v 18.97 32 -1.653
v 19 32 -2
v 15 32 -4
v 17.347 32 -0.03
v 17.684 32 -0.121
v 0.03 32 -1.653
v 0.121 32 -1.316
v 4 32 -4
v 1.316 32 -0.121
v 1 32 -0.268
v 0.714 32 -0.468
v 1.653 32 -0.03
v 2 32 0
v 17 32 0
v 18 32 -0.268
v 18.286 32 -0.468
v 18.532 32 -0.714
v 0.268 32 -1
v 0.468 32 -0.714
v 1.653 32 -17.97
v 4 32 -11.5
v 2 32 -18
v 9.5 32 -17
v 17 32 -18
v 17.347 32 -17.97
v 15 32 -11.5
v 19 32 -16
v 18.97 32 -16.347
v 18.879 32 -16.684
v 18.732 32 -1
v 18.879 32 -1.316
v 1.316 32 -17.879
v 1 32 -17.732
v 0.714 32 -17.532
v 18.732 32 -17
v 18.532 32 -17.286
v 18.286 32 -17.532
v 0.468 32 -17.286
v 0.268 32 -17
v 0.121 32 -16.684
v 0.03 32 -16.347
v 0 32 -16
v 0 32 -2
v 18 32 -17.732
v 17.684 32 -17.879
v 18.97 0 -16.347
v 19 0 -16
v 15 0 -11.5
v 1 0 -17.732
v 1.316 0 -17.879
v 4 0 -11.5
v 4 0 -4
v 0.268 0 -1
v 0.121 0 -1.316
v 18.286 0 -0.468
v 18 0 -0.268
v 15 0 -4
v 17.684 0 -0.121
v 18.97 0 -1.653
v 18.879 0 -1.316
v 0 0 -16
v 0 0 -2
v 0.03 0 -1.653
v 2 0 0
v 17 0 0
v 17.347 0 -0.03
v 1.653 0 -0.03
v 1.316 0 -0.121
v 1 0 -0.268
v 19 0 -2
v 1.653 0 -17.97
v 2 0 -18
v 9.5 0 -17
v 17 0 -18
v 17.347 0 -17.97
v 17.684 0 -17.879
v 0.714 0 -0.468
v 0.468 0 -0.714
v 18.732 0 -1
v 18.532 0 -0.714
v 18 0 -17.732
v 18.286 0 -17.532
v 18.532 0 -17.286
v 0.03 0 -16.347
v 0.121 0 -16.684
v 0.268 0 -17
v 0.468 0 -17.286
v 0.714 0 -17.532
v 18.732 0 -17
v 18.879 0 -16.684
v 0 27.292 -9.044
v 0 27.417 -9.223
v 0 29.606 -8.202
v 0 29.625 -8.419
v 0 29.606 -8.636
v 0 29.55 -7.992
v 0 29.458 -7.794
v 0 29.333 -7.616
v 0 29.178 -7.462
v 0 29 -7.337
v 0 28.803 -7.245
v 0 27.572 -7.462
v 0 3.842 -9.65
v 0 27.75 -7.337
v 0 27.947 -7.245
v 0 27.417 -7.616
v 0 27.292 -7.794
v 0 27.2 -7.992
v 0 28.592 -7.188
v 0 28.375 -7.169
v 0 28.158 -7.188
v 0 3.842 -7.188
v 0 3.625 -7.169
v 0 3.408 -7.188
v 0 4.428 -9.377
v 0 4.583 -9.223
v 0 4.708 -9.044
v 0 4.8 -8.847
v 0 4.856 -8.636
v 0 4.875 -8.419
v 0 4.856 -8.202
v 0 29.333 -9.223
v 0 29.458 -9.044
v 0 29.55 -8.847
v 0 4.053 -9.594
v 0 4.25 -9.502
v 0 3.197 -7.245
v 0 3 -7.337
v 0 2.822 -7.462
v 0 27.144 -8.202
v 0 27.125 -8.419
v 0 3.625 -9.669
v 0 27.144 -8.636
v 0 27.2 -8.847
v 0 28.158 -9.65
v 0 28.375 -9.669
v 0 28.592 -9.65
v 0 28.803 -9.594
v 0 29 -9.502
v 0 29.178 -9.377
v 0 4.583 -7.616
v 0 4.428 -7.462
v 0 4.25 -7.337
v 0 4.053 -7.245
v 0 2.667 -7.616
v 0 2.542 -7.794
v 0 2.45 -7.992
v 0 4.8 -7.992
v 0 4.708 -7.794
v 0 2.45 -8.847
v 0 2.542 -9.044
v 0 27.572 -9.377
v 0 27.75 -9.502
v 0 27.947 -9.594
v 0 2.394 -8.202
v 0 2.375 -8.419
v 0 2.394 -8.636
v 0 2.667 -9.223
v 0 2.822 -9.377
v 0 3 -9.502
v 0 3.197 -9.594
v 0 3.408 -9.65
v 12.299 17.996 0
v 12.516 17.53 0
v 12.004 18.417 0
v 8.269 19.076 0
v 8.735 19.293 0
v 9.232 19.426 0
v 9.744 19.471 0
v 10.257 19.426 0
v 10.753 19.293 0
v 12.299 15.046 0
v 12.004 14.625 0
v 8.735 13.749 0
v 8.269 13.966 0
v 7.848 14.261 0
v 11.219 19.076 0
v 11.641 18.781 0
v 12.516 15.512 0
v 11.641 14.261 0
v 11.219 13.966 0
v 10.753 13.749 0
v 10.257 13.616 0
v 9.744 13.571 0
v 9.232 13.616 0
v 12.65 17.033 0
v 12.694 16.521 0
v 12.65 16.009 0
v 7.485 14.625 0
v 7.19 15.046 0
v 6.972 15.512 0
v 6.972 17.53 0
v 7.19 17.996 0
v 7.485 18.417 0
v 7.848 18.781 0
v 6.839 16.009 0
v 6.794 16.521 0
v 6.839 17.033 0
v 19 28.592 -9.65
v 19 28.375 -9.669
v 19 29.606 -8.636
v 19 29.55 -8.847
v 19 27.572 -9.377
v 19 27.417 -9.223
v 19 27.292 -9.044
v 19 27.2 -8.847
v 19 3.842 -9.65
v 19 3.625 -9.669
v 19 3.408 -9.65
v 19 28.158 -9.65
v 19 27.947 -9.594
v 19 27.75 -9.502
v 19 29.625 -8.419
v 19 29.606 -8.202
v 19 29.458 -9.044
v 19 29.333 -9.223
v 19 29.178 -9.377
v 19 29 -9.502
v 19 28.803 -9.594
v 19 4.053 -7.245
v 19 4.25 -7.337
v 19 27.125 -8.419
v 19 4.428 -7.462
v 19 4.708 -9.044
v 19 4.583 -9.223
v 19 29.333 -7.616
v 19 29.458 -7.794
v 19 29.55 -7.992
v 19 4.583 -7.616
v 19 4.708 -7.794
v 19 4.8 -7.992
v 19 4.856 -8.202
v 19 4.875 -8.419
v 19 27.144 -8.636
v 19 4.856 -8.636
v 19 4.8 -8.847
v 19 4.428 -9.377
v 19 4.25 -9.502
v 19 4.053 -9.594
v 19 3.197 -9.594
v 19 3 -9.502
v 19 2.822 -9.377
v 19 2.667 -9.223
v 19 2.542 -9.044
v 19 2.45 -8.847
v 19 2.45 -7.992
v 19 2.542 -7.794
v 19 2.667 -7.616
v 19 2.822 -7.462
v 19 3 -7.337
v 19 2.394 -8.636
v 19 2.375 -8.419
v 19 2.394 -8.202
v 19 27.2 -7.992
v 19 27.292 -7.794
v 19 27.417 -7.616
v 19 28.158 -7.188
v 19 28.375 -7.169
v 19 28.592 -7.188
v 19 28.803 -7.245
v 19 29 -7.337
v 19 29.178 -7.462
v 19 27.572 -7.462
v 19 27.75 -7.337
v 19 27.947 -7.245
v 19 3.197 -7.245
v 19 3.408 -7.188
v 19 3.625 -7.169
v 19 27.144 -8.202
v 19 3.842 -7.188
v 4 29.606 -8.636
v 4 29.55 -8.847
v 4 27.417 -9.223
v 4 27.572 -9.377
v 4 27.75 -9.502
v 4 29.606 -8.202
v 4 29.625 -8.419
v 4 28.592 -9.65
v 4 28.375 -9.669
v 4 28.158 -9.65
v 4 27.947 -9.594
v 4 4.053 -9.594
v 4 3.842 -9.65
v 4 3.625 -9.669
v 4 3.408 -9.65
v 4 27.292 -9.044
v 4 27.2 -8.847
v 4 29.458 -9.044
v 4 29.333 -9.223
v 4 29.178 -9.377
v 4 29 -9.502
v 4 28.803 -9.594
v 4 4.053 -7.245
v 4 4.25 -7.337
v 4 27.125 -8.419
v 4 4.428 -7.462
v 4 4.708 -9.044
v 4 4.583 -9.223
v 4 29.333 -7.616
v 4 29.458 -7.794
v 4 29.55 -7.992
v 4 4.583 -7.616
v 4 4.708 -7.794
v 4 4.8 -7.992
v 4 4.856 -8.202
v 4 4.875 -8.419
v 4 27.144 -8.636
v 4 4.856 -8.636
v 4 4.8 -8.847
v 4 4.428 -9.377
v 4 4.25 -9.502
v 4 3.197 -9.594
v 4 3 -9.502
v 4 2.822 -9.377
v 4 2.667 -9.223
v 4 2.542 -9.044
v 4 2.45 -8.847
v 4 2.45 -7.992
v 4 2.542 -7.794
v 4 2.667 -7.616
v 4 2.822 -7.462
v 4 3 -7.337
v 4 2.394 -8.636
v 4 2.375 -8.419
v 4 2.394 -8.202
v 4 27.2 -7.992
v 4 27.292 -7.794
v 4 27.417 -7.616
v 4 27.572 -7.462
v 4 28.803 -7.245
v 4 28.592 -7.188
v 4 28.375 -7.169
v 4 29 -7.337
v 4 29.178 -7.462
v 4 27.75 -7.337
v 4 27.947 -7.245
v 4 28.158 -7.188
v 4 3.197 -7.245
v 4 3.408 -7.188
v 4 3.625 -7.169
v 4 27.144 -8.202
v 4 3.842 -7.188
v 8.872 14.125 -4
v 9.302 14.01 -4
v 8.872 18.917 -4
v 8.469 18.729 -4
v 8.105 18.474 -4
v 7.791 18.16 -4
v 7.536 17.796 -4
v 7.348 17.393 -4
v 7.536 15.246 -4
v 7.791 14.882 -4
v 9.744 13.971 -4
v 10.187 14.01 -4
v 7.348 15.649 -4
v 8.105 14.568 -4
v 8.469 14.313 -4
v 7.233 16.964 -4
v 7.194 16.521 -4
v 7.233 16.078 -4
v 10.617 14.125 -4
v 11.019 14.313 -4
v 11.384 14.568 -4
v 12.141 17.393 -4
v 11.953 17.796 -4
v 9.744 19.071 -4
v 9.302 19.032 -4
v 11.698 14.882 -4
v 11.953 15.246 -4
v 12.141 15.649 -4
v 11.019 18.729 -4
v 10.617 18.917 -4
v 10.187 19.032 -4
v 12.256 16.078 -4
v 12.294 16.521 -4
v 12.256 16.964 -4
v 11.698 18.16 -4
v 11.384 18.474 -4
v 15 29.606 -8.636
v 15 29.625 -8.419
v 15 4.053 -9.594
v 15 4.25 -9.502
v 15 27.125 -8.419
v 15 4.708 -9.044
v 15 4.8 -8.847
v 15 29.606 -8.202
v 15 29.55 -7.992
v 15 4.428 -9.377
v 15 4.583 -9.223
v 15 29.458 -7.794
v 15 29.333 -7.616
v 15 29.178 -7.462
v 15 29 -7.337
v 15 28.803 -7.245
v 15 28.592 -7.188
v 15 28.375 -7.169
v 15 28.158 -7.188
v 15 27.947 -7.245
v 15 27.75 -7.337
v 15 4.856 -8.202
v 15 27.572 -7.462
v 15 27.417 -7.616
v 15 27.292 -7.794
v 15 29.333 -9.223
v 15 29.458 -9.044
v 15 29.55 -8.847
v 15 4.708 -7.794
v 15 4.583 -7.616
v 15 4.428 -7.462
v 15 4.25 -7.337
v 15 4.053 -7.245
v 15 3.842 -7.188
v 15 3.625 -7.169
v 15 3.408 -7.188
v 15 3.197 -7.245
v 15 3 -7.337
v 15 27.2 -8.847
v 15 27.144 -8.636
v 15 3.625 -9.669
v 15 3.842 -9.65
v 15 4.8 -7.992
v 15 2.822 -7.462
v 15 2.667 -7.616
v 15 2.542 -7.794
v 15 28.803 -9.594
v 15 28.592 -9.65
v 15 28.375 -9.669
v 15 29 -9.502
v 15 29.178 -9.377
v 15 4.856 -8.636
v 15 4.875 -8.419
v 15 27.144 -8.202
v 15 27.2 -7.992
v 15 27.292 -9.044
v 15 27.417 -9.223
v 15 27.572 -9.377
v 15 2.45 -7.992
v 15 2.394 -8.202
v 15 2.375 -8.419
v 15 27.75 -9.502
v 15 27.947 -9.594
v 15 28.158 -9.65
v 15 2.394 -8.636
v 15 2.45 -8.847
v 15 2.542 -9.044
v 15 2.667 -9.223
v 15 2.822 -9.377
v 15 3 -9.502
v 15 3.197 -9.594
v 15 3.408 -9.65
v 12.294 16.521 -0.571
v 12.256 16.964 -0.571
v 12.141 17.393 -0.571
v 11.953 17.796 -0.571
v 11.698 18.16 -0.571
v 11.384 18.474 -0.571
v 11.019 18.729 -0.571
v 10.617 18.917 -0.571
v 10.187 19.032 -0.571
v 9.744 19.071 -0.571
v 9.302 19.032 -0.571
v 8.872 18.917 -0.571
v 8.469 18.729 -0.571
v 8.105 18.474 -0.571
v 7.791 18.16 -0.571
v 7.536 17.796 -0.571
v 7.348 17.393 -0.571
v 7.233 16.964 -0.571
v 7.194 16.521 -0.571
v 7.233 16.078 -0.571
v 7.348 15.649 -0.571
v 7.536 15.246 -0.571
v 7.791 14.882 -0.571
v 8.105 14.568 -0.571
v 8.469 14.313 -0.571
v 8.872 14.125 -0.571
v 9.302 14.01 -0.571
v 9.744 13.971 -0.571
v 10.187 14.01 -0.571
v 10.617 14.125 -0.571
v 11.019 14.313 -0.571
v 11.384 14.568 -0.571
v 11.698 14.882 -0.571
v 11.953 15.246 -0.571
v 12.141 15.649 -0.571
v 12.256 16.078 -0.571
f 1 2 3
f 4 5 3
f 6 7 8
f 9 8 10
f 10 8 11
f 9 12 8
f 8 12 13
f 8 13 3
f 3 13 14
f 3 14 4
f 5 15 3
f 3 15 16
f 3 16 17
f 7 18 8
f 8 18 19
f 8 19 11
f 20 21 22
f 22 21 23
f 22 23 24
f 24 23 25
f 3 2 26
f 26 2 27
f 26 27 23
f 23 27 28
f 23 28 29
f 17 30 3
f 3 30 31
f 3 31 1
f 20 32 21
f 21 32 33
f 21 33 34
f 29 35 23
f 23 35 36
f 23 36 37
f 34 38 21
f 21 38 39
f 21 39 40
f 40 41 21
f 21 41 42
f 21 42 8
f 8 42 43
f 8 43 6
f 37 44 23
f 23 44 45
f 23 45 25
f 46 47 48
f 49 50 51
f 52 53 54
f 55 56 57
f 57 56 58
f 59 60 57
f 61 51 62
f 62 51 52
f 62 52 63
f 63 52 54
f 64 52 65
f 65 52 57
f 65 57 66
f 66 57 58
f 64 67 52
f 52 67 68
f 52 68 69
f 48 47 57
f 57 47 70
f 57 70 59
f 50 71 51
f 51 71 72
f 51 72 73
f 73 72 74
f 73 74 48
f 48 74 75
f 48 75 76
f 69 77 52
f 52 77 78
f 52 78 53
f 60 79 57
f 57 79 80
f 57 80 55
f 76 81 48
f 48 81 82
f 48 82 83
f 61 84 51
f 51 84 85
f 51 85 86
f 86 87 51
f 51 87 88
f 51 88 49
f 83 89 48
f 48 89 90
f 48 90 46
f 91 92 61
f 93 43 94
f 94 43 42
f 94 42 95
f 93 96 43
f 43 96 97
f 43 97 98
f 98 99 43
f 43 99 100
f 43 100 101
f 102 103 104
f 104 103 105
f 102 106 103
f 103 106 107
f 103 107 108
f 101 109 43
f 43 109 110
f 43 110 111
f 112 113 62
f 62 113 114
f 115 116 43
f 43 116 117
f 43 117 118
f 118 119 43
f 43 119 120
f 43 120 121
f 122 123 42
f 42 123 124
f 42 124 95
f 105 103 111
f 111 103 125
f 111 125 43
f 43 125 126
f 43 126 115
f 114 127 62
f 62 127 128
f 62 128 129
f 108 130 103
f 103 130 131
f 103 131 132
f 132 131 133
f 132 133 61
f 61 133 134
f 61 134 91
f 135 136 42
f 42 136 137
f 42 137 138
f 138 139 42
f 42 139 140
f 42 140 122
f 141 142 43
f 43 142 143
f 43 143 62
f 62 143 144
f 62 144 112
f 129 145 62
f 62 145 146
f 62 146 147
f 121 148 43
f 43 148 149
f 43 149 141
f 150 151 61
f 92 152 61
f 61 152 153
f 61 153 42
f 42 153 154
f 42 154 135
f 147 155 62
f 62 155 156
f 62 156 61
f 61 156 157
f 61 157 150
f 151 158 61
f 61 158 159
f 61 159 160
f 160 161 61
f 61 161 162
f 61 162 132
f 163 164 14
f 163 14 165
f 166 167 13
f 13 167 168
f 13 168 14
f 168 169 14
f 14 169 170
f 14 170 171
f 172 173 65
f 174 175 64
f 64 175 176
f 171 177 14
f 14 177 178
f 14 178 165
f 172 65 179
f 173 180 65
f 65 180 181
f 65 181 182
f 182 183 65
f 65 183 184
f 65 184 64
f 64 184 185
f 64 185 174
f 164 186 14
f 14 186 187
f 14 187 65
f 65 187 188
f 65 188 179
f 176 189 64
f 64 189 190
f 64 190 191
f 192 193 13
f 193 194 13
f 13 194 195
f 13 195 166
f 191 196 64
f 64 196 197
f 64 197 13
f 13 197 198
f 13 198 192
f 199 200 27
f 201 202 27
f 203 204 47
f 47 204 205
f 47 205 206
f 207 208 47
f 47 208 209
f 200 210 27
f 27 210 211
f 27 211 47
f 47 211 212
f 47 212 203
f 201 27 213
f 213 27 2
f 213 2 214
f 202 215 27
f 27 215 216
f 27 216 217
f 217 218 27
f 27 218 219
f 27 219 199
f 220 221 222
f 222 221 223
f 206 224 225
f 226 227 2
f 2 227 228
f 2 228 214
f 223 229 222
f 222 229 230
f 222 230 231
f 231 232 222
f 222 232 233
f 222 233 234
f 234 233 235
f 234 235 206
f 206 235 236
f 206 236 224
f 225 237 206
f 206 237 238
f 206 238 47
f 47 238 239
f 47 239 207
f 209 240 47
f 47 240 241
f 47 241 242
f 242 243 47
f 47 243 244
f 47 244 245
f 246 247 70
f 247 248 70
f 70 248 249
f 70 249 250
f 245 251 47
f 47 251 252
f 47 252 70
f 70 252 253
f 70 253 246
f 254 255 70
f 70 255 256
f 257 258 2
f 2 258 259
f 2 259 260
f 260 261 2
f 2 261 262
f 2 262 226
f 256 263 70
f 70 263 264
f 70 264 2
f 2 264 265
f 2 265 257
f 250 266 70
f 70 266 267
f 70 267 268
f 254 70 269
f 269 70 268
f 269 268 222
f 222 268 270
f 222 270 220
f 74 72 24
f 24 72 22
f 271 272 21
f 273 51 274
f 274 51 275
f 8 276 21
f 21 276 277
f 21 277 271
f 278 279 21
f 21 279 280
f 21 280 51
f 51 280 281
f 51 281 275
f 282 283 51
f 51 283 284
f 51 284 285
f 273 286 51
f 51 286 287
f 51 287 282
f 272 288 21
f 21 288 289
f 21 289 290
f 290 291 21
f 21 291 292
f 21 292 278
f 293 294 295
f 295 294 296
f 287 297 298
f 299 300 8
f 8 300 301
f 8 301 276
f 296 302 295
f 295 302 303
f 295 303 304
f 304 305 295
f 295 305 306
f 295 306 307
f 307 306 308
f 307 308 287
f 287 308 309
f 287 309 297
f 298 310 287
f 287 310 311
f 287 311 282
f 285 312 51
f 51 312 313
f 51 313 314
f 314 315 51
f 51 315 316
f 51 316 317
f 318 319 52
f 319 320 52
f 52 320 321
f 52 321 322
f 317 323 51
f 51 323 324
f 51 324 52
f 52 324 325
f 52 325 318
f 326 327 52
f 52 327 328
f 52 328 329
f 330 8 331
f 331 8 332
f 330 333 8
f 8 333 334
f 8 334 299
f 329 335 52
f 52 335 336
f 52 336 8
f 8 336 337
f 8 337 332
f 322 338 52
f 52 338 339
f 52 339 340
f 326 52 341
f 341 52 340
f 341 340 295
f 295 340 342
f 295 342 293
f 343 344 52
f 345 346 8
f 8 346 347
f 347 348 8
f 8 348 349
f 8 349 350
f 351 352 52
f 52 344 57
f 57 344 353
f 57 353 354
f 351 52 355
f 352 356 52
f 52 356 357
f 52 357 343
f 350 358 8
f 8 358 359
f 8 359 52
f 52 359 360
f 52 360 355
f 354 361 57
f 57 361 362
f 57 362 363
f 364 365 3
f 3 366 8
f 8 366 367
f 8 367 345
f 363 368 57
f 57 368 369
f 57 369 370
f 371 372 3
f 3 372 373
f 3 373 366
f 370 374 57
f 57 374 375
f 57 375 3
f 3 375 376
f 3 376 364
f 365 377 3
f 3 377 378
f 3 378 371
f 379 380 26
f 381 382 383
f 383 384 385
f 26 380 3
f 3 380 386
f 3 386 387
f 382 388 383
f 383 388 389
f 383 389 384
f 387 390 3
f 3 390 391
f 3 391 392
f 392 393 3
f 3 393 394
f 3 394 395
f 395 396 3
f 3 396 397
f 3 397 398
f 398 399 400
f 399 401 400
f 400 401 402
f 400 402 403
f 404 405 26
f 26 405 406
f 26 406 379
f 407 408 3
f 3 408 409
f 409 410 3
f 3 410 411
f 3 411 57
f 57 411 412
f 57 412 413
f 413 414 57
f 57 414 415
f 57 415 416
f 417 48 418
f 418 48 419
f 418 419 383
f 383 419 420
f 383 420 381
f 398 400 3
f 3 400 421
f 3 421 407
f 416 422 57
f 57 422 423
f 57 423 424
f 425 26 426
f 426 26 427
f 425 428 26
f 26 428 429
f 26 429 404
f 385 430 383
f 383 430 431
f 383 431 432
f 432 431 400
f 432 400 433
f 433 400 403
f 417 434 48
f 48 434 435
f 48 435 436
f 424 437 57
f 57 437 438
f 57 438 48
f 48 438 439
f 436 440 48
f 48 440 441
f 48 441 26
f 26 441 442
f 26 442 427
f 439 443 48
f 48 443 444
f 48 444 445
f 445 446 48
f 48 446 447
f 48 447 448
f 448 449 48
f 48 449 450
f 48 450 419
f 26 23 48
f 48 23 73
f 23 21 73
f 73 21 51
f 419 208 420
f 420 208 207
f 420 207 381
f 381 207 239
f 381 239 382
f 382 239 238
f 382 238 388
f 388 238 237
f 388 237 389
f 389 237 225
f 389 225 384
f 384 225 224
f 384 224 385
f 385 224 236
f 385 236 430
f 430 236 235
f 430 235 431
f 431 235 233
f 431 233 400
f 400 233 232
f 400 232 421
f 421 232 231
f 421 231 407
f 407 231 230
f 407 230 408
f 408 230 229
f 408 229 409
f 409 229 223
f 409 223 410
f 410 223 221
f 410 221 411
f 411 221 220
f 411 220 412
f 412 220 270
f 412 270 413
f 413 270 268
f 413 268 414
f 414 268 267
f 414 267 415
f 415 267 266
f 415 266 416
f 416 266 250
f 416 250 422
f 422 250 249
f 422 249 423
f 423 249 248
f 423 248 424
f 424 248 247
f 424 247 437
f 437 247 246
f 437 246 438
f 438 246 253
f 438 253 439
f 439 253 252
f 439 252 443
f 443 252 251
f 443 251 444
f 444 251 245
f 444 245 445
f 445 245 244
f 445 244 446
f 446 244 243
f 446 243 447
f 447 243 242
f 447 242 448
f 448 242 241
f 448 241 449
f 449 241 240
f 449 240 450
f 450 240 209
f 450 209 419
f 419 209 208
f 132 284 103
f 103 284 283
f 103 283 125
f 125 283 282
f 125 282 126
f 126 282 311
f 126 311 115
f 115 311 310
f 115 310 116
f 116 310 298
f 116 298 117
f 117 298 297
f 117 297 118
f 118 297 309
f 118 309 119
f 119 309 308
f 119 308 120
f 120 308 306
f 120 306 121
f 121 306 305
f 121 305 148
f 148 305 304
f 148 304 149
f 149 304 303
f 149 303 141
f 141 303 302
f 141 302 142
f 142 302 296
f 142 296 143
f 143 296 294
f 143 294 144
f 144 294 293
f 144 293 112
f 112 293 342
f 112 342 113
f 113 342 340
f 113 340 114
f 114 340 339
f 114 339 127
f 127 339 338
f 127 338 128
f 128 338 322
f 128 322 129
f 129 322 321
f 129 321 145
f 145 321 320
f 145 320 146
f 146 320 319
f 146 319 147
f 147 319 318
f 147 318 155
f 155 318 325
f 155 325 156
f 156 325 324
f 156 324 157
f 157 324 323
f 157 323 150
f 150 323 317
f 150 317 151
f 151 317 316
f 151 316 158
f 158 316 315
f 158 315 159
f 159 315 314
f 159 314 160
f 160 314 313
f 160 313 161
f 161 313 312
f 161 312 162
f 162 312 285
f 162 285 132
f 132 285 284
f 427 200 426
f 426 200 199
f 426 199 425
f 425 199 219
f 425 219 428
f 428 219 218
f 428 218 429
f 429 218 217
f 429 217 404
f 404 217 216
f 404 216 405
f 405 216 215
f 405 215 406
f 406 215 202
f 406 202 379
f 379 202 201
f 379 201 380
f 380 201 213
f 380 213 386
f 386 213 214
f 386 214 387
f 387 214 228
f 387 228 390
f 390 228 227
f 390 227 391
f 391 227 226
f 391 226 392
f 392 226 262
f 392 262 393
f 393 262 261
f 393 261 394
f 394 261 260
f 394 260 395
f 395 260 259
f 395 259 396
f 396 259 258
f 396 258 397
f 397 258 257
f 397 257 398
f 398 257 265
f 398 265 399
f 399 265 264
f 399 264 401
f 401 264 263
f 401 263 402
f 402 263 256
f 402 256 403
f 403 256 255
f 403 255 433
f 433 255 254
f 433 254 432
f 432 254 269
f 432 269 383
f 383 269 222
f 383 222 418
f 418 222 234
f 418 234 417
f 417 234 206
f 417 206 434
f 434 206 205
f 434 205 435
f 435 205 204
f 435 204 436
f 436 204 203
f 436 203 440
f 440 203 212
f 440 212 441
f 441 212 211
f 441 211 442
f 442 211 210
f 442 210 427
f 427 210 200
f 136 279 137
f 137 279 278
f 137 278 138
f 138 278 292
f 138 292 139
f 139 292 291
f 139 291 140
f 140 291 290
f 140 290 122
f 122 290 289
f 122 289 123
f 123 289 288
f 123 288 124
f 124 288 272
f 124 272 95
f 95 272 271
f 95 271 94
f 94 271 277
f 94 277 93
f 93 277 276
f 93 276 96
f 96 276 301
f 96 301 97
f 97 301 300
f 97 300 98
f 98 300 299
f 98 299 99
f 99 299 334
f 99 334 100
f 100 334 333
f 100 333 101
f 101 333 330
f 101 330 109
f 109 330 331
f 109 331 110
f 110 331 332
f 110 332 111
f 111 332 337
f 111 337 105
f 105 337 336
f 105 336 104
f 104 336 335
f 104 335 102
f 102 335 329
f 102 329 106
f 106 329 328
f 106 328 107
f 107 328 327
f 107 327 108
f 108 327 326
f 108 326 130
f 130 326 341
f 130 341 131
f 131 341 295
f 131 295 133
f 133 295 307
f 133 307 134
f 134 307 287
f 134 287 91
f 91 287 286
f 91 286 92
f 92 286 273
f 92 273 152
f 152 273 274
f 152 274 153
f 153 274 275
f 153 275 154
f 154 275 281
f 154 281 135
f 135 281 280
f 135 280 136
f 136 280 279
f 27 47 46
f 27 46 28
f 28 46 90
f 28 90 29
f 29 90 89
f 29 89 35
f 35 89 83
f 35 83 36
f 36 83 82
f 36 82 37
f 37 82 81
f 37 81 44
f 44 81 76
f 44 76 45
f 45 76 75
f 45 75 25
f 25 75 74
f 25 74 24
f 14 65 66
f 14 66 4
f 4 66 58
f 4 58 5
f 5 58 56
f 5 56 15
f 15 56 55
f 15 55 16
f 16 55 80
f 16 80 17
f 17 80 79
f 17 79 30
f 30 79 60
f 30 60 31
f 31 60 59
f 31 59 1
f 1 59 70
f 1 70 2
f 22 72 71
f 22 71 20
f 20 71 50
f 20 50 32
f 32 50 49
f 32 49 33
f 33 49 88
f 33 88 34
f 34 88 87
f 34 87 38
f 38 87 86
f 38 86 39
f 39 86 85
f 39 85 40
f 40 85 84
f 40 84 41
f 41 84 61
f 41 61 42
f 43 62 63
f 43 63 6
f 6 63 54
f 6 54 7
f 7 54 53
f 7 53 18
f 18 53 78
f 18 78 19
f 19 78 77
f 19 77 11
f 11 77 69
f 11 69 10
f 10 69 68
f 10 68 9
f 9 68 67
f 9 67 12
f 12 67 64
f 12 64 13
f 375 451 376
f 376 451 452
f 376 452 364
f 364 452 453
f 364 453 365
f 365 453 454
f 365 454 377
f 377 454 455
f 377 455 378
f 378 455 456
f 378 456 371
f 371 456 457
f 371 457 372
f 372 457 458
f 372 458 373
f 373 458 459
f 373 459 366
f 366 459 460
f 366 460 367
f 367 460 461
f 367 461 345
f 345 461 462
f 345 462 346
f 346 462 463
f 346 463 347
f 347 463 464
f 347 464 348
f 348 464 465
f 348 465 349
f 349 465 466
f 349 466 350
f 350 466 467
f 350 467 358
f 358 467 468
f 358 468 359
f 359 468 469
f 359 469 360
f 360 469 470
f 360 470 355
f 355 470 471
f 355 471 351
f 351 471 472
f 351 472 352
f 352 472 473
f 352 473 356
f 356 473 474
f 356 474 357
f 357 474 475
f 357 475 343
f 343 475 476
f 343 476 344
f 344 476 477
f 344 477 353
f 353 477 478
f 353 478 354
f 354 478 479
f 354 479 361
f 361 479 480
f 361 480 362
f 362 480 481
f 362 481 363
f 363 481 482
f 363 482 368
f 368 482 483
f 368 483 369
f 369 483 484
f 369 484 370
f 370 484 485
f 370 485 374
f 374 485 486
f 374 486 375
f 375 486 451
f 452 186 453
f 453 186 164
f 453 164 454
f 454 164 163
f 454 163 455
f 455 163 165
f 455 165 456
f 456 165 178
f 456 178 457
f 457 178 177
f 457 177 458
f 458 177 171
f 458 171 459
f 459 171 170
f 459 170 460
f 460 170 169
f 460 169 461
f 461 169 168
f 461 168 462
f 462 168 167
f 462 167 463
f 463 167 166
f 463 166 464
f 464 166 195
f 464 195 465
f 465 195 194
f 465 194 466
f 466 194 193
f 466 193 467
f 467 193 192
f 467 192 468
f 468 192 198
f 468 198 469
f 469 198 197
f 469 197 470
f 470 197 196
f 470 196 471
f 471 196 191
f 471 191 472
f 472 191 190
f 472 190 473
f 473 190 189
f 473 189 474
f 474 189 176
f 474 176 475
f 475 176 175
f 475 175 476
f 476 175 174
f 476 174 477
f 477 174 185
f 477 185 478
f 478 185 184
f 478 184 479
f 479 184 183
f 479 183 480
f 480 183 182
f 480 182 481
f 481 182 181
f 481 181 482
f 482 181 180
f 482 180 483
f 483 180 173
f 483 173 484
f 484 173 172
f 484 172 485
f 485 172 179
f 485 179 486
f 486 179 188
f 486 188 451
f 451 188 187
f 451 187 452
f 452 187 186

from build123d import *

# Parameters (mm, degrees)
SKETCH1_W                   = 19
SKETCH1_H                   = 18
BOSS_EXTRUDE1_DEPTH         = 32
TAP_DRILL_FOR_M3X0_5_TAP1_D = 2.5
FILLET1_R                   = 2


with BuildPart() as part:
    # Sketch1 → Boss-Extrude1 (new body)
    with BuildSketch(Plane(origin=(0, 0, 0), x_dir=(1, 0, 0), z_dir=(0, 1, 0))):
        with Locations((9.5, 9)):
            Rectangle(SKETCH1_W, SKETCH1_H)
        Polygon((4, 4), (15, 4), (15, 11.5), (9.5, 17), (4, 11.5), align=None, mode=Mode.SUBTRACT)
    extrude(amount=BOSS_EXTRUDE1_DEPTH)

    # Tap Drill for M3x0.5 Tap1 (through all)
    with Locations(Plane(origin=(19, 0, 0), x_dir=(0, 0, -1), z_dir=(1, 0, 0))):
        with Locations((8.419226219, 28.375), (8.419226219, 3.625)):
            Hole(TAP_DRILL_FOR_M3X0_5_TAP1_D / 2)

    # Fillet1
    fillet1_edges = [part.edges().sort_by_distance(p)[0] for p in [
        (0, 16, -18),
        (19, 16, -18),
        (19, 16, 0),
        (0, 16, 0),
    ]]
    fillet(fillet1_edges, radius=FILLET1_R)

    # Sketch5 → M5 Clearance Hole1 (revolve, cut)
    with BuildSketch(Plane(origin=(9.744397645, 16.5210513, 0), x_dir=(0, -1, 0), z_dir=(1, 0, 0))):
        Polygon((0, 0), (0, 4), (2.55, 4), (2.55, 0.571259203), (2.95, 0), align=None)
    revolve(axis=Axis((9.744397645, 16.5210513, 6.35), (0, 0, -1)), mode=Mode.SUBTRACT)


solid = part.part
